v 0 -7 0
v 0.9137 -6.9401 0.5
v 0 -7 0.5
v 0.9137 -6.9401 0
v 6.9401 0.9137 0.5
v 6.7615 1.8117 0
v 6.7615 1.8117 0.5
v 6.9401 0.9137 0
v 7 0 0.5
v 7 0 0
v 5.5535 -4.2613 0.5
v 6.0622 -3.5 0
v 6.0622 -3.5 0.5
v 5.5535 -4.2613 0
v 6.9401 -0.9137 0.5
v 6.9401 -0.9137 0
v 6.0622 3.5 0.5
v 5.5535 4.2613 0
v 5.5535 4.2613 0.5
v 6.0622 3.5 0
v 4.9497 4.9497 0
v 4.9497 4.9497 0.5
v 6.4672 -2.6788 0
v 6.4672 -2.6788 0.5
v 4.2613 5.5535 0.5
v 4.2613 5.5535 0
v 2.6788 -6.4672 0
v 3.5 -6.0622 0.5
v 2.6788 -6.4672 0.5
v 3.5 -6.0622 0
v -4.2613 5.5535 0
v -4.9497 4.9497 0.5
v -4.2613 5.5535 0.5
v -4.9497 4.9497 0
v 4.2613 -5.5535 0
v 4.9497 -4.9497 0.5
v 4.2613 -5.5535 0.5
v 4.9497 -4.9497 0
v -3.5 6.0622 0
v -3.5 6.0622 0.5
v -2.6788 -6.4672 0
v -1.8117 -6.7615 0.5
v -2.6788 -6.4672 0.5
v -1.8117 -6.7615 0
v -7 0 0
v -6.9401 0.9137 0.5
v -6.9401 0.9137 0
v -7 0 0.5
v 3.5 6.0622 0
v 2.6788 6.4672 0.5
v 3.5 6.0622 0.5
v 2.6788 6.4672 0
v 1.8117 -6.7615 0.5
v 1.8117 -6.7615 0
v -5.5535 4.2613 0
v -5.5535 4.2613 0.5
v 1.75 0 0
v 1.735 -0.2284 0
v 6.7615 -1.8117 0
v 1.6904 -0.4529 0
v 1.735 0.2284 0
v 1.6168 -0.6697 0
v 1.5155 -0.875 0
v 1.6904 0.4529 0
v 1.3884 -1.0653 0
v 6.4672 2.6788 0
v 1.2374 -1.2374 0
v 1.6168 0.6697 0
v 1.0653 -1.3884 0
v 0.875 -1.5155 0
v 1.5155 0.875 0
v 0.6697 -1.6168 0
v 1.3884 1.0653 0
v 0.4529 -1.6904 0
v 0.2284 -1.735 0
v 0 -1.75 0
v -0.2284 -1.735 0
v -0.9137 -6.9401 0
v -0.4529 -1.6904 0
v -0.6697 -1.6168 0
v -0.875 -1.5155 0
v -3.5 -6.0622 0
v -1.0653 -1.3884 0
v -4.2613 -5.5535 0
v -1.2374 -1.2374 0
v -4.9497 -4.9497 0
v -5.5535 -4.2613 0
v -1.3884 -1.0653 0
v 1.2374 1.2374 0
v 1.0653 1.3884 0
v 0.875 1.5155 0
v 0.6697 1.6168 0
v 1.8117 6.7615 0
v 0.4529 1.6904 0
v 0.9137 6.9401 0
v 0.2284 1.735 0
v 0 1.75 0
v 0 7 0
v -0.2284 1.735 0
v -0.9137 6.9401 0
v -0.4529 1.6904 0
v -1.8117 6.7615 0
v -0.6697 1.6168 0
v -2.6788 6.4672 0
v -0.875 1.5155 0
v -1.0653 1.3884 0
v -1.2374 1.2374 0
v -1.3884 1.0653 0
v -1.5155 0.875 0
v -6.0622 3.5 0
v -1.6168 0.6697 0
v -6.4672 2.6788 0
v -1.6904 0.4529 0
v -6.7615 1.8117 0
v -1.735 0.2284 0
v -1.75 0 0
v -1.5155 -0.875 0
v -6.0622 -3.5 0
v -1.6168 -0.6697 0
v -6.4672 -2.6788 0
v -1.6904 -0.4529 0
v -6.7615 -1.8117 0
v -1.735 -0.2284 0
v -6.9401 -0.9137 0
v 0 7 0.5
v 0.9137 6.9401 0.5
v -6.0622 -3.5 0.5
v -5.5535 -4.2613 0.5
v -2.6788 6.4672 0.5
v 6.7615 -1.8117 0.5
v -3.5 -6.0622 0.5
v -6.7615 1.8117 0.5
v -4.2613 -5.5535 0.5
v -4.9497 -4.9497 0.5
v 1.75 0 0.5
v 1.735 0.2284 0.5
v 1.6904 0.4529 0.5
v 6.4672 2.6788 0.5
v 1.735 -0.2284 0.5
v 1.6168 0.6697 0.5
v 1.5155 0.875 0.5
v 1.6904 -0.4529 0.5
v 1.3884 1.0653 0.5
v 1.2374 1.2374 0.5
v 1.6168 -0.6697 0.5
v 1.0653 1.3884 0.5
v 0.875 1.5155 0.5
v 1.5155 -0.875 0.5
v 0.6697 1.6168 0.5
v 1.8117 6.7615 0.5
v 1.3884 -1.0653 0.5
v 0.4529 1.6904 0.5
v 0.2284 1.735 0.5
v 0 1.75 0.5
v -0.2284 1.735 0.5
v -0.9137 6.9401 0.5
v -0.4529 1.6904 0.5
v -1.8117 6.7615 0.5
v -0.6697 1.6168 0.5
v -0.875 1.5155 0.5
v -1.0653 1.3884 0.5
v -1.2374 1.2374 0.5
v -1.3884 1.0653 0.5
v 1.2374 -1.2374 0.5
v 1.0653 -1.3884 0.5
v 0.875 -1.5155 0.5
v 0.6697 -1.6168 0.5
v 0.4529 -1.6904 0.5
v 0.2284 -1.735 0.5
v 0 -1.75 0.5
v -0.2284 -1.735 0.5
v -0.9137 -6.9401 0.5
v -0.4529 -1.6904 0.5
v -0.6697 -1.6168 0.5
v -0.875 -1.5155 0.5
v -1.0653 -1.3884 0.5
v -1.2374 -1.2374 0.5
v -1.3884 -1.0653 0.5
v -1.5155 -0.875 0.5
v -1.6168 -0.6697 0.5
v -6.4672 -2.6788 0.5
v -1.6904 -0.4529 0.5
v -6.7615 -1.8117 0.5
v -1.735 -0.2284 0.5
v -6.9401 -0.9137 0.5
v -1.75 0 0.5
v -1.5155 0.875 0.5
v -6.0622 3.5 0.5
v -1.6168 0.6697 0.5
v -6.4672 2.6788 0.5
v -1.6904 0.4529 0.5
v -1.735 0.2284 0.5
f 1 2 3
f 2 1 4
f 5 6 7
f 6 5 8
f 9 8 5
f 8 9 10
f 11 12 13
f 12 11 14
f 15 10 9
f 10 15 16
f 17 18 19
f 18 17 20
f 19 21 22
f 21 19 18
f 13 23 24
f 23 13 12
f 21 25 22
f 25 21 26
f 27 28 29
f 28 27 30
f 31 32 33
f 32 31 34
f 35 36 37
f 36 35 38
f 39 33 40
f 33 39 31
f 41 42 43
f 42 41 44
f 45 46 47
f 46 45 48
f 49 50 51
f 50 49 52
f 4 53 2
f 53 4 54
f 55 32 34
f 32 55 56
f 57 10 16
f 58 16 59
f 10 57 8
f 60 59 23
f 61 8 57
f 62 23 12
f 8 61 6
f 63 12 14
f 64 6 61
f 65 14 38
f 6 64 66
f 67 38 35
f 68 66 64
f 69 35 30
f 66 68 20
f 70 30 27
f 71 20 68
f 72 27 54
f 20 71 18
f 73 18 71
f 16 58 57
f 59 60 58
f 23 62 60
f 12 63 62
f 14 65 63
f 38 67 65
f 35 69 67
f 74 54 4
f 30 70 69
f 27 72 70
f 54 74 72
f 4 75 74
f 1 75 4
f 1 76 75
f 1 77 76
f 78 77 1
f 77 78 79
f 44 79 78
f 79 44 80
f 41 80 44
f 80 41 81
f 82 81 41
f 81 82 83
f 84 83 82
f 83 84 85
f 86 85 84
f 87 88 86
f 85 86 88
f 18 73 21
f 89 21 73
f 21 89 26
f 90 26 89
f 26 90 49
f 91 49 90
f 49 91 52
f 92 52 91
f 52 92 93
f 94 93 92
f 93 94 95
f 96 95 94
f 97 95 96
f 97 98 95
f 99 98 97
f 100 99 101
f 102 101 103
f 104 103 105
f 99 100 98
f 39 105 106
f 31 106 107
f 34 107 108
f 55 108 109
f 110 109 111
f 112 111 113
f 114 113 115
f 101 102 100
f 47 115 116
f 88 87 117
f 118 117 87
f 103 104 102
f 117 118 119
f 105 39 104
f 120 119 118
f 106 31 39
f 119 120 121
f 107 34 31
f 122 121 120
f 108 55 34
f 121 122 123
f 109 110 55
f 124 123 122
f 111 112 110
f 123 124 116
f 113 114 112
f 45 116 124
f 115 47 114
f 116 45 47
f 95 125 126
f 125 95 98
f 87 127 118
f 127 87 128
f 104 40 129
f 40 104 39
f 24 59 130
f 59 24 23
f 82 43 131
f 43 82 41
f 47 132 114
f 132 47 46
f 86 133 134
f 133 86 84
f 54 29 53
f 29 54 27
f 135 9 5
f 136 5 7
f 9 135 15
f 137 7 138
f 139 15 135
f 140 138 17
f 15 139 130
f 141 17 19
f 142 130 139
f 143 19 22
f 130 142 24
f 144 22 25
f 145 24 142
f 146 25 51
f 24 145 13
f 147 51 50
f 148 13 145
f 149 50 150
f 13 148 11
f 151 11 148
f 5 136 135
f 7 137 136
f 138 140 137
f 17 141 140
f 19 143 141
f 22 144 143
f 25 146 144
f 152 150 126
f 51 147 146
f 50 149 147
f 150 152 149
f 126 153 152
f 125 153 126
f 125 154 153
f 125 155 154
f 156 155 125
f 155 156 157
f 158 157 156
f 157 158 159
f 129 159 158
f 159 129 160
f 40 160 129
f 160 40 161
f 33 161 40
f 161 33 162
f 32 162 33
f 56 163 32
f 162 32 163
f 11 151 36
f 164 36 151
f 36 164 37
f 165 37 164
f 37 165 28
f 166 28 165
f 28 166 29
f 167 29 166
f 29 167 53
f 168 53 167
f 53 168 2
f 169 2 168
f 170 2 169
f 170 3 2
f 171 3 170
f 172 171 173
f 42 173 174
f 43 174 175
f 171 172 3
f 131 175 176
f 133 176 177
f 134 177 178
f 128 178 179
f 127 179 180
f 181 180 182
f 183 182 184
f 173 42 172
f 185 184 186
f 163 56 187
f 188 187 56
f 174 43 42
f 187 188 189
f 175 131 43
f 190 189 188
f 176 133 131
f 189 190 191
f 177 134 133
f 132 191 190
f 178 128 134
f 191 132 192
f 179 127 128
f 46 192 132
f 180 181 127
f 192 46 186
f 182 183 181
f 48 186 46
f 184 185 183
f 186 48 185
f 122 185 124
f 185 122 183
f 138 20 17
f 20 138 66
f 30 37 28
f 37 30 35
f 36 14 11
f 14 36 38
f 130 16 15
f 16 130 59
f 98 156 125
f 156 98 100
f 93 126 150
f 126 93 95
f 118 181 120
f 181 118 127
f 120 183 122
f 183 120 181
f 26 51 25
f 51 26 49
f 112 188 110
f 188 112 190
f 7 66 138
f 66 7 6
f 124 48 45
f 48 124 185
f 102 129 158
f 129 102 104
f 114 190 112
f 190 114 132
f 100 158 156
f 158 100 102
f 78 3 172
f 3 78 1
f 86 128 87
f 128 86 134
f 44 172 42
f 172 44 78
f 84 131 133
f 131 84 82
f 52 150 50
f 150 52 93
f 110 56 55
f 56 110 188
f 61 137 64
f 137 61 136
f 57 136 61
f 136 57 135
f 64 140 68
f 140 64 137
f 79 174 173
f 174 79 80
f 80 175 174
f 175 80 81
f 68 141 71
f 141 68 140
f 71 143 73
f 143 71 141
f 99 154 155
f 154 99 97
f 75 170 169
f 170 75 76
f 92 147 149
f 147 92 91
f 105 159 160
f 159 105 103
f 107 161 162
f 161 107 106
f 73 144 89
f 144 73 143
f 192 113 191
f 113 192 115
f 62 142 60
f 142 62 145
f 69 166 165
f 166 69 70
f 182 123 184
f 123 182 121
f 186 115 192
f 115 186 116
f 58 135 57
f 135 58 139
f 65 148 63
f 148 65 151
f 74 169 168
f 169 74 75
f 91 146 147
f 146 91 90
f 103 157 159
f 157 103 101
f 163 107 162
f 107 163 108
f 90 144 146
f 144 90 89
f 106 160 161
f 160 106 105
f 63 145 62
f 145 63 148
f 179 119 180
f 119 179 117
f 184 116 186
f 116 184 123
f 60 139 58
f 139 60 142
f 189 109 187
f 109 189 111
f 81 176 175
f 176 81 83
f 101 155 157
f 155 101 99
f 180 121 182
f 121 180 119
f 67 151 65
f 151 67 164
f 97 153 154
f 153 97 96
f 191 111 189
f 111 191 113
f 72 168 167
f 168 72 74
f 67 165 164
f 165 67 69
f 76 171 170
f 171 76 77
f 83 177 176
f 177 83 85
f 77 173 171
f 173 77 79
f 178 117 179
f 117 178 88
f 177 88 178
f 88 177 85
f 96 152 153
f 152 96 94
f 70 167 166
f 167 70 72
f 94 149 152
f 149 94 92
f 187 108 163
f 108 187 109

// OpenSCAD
// file: parameters.scad
// =============================================================================
// Gen-BL — nightly 2026-10-06 (physics_scorer, honest magpylib watts)
// Dense-wind, smaller gap: the wire budget (not the window) limits these machines, so the same ~367 m of 26 AWG is laid layer-by-layer at fill 0.65 into a SHORTER 8.1 mm window (vs 9.0 mm on Gen-BI) with a 17.1 mm build on 29–71 mm sector bobbins. That shrinks the magnet-to-magnet gap 11.6 → 10.7 mm, so every turn sees more flux. Rotors, Ø5 tight-assist map and Ø134 × 4.76 mm steel are identical to Gen-BI (modular: only bobbins, stator and gap sleeve change).
// Clocking 0 deg (magnets N facing S) + D-flat keyed bore + index notch + flip-symmetric hole map.
// Windable 2-piece bobbin; turns = physics_scorer turns_fit; copper only between flanges.
// Steel back-iron: 2× Ø134 × 4.76 mm (3/16") mild-steel discs (steel_backiron_disc.dxf); magnets sit ON the steel
// (through-pockets) -> score with --back-iron.
// =============================================================================
topology            = "dual_rotor";

// --- Wire / winding (physics_scorer winding-fit) -------------------------------
wire_awg            = 26;
wire_od             = 0.45;     // insulated OD mm (bare 0.405)
fill_realistic      = 0.65;     // insulated-wire area / window (DENSE layered wind with a jig; scorer cap 0.65)
turns               = 566;       // = physics_scorer turns_fit (do NOT raise)
coil_former_type    = "bobbin";
coil_core_inset     = 17.10;     // radial copper build: hub = copper boundary inset by this
wind_build_axial    = 0.0;      // nothing proud of the flanges
wind_build_radial   = 0.0;

// --- Bobbin (base + lid) ---------------------------------------------------------
coil_id_r           = 29.00;    // copper boundary sector
coil_od_r           = 71.00;
span_deg            = 52.68;    // = pitch - 2*asin((wall+0.85)/coil_id_r) -> >=1.2 mm stator web
former_web          = 8.10;     // copper height between flanges (TALL copper: steel keeps Bz up)
flange_t            = 0.80;     // >= 0.8 mm FDM wall rule (tall winds push on the flanges)
wall                = 1.00;     // flange lip beyond copper
former_bare_h       = former_web + 2 * flange_t;
coil_envelope_h     = former_bare_h + 2 * wind_build_axial;
tab_w               = 7.0;
tab_len             = 7.0;
tab_h               = former_bare_h / 2;
pin_d               = 1.9;      // 1.75 mm filament locating pin
coil_mount_r        = coil_od_r + 0.2 + 4.0;
lead_y              = 1.6;
lead_slot_w         = 0.9;
lead_groove_d       = 0.6;

// --- Gap -------------------------------------------------------------------------
run_clear           = 0.50;     // rotor face -> flange
gap_spacer_h        = run_clear + wind_build_axial;
m2m                 = coil_envelope_h + 2 * run_clear;   // rotor face to rotor face (= gap_sleeve length)

// --- Stator ----------------------------------------------------------------------
coil_stations       = 6;
bay_clear           = 0.25;
stator_thick        = former_bare_h;                        // bobbins flush both faces
stator_od           = 160;
shaft_clear_stator  = 14.0;     // stator is static; gap sleeve OD 12 spins inside

// --- Rotor(s) --------------------------------------------------------------------
magnet_Br           = 1.43;     // N52
magnet_d_large      = 20.0;
magnet_h_large      = 5.0;      // one O20x5 per pocket
magnet_h_small      = 5.0;      // one O5x5 per pocket
halbach_magnetisation = "diametric"; // O5x5 assist magnets MUST be DIAMETRICALLY magnetised (tangential)
rotor_b_same_axis   = true;     // same-index magnets share one axis: N faces S across the gap
large_pocket_d      = 20.3;
small_pocket_d      = 5.3;
pocket_h            = 5.10;     // THROUGH the carrier: magnet back face sits on the steel disc
large_n             = 8;
R_large             = 50.0;
R_small_inner       = 40.0;
R_small_mid         = 50.0;
R_small_outer       = 60.0;
small_r_list        = [R_small_inner, R_small_mid, R_small_outer];   // O5 pockets between poles
carrier_od          = 134.0;
carrier_thick       = pocket_h;
hub_h               = 12.0;     // > steel_t + insert: radial set-screw clears the steel
hub_od              = 24.0;     // slim hub so the M4 brace rods fit at R~18 inside the coil ring
hub_insert_d        = 4.0;      // M3 heat-set insert, radial, bears on the D-flat
rotor_b_offset_deg  = 0.0;      // CLOCKING: magnets directly opposite
shaft_key           = "dflat";
dflat_depth         = 0.5;      // 8 mm shaft with 0.5 mm flat (7.5 across flat)
index_notch_d       = 3.0;

// --- Steel back-iron (buyable laser-cut) -------------------------------------------
steel_t             = 4.76;      // mild steel thickness (image method ignores it; sized from steel_flux.py so the return path stays well below saturation)
steel_center_hole   = 26.0;     // slips over the rotor hub (OD 24)
steel_od            = carrier_od;   // steel disc OD = rotor carrier OD

// --- Modular MAX interface ----------------------------------------------------------
shaft_bore          = 8.35;
dflat_x             = 4.0 - dflat_depth + (shaft_bore - 8.0) / 2;
bearing_d           = 21.85;
bearing_h           = 7.2;
m3_clear            = 3.5;
bolt_r_inner        = 30.0;     // M3 steel-disc clamp bolts (inside the magnet ring)
bolt_n_inner        = 4;
bolt_inner_angles   = [0, 90, 180, 270];
bolt_r_outer        = 63.0;     // M3 steel-disc clamp bolts (outside the magnet ring)
bolt_outer_angles   = [45, 135, 225, 315];
flange_bolt_r       = 73.0;     // frame rods: OUTSIDE the rotor OD (rotors spin inside them)
flange_bolt_n       = 6;
flange_bolt_offset  = 30.00;    // between coil stations -> never cuts a lead groove/tab
brace_r             = 18.0;
brace_d             = 4.3;      // temporary M4 jack rods (assembly only)
brace_n             = 4;
brace_angles        = [45, 135, 225, 315];          // flip-symmetric

spacer_pad_od       = 14.0;
spacer_pad_id       = m3_clear;
endbell_od          = 160;
endbell_thick       = 8.0;
endbell_shaft_clear = 10.0;
collar_h            = 10.0;
standoff_od         = 9.0;
frame_standoff_h    = run_clear + carrier_thick + hub_h + collar_h + 2.0;
sleeve_od           = 12.0;
plate_max_mm        = 410;

$fn = 64;
// main file
// Gen-BL — assembly gap shim, h = run_clear (rotor face -> flange); copper is inside the flanges
include <parameters.scad>;
$fn = 48;
difference() {
    cylinder(d=spacer_pad_od, h=gap_spacer_h);
    translate([0, 0, -0.1]) cylinder(d=spacer_pad_id, h=gap_spacer_h + 0.2);
}
